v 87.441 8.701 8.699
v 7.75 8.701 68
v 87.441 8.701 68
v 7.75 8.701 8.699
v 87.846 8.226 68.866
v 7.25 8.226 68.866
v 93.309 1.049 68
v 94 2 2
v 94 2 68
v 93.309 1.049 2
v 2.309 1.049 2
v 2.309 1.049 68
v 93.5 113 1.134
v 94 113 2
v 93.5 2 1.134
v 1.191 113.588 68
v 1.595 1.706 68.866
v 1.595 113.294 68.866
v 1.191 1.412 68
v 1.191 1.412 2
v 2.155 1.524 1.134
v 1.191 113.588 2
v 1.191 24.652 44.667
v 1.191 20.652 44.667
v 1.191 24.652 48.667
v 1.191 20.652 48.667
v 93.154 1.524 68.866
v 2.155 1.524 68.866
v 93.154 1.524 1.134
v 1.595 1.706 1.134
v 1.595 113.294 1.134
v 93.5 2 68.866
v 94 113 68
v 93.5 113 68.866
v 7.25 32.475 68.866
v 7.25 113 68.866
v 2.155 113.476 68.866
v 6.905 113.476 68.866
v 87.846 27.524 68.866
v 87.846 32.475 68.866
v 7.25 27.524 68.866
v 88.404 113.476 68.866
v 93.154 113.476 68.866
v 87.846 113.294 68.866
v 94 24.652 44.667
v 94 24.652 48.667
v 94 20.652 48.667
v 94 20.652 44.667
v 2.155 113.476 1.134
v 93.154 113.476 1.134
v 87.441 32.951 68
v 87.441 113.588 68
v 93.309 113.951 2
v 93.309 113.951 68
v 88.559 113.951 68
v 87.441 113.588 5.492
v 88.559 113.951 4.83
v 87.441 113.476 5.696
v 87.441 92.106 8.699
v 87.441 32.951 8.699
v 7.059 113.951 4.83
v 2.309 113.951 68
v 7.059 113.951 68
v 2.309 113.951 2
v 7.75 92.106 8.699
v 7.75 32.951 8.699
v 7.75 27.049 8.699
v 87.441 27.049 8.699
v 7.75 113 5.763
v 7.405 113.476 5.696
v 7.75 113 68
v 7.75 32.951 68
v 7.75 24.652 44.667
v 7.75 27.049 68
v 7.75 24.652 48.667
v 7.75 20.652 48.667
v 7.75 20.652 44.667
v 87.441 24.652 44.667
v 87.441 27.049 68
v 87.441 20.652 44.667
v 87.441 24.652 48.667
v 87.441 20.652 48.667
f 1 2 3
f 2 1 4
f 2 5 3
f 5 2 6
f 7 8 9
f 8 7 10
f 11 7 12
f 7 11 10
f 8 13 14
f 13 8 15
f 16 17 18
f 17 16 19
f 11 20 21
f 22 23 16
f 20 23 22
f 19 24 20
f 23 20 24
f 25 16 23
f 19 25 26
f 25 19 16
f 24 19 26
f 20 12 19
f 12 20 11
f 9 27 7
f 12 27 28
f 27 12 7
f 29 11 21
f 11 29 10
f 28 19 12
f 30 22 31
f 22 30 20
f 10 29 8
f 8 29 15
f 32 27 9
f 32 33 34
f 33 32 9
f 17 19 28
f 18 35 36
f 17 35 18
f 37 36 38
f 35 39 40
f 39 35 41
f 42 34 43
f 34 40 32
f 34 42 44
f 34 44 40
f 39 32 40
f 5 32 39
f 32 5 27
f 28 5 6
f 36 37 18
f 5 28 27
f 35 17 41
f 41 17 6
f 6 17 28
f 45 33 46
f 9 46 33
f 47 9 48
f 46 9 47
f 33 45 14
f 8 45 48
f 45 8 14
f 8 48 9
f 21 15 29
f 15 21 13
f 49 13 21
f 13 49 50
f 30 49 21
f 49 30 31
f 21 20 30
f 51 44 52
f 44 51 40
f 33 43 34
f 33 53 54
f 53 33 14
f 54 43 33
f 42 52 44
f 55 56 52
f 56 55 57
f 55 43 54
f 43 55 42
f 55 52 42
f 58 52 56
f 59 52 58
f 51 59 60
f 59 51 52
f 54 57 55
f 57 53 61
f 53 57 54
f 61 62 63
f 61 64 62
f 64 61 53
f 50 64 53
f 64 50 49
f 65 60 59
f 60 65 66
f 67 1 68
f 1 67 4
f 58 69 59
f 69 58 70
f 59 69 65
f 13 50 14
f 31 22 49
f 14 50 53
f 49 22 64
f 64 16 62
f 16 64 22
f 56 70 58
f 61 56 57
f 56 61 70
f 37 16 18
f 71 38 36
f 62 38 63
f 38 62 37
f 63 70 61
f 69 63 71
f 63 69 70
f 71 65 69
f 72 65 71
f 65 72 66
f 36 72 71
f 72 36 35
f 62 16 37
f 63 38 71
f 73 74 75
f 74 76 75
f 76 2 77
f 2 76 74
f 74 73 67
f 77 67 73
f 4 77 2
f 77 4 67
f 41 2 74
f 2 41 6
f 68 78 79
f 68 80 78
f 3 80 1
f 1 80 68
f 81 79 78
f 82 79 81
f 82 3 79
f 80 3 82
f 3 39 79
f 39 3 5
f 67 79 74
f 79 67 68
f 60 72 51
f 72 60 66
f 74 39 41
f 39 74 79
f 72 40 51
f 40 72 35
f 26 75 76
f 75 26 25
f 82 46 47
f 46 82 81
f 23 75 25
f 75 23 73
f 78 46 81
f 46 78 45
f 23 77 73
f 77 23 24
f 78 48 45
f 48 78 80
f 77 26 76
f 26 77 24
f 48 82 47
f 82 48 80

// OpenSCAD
//Scoop for Dawg
//by jessicad2020
//v.1.0, 25 Jan 2019 

//parameters----------------------------------------------------------
boxw = 95;
boxl = 115;
boxh = 70;
sd = 2; //minkowski sphere diameter

//render--------------------------------------------------------------

shell();

translate([25,50,30]) {
   ball();     
}

translate([25,90,30]) {
    ball();
}

translate([65,50,30]) {
    ball();
}

translate([65,90,30]) {
    ball();
}

//modules-------------------------------------------------------------
module shell() {
    translate([boxw/2,boxl/2,boxh/2]) {
        difference() {
            minkowski() {
                box();
                sphere(d=sd);
            }
            translate([0,-boxl/3.3,boxh/6]) {
                cube([boxw*2,4,4], center=true); //axis
            }           
        }          
    }
}

module box() {
    difference() {
        cube([boxw-4, boxl-4, boxh-4], center=true);
        translate([0,boxl*0.2,boxh*0.9/2.7]) {
            cube([boxw*0.9-4, boxl*1.3-4, boxh*1.5-4], center=true);
        }
        translate([0,boxl*0.9,boxh*0.23]) { //slope
            rotate([-8,0,0]) {
                cube([boxw*0.9-4, boxl*1.3-4, boxh*1.5], center=true);
            }
        }       
    }
    translate ([0,boxl/-2+30,0]) {
        cube([boxw-6,4,boxh-4], center=true); //wall
    }
}

module ball() {
    %sphere(d=40);
}
